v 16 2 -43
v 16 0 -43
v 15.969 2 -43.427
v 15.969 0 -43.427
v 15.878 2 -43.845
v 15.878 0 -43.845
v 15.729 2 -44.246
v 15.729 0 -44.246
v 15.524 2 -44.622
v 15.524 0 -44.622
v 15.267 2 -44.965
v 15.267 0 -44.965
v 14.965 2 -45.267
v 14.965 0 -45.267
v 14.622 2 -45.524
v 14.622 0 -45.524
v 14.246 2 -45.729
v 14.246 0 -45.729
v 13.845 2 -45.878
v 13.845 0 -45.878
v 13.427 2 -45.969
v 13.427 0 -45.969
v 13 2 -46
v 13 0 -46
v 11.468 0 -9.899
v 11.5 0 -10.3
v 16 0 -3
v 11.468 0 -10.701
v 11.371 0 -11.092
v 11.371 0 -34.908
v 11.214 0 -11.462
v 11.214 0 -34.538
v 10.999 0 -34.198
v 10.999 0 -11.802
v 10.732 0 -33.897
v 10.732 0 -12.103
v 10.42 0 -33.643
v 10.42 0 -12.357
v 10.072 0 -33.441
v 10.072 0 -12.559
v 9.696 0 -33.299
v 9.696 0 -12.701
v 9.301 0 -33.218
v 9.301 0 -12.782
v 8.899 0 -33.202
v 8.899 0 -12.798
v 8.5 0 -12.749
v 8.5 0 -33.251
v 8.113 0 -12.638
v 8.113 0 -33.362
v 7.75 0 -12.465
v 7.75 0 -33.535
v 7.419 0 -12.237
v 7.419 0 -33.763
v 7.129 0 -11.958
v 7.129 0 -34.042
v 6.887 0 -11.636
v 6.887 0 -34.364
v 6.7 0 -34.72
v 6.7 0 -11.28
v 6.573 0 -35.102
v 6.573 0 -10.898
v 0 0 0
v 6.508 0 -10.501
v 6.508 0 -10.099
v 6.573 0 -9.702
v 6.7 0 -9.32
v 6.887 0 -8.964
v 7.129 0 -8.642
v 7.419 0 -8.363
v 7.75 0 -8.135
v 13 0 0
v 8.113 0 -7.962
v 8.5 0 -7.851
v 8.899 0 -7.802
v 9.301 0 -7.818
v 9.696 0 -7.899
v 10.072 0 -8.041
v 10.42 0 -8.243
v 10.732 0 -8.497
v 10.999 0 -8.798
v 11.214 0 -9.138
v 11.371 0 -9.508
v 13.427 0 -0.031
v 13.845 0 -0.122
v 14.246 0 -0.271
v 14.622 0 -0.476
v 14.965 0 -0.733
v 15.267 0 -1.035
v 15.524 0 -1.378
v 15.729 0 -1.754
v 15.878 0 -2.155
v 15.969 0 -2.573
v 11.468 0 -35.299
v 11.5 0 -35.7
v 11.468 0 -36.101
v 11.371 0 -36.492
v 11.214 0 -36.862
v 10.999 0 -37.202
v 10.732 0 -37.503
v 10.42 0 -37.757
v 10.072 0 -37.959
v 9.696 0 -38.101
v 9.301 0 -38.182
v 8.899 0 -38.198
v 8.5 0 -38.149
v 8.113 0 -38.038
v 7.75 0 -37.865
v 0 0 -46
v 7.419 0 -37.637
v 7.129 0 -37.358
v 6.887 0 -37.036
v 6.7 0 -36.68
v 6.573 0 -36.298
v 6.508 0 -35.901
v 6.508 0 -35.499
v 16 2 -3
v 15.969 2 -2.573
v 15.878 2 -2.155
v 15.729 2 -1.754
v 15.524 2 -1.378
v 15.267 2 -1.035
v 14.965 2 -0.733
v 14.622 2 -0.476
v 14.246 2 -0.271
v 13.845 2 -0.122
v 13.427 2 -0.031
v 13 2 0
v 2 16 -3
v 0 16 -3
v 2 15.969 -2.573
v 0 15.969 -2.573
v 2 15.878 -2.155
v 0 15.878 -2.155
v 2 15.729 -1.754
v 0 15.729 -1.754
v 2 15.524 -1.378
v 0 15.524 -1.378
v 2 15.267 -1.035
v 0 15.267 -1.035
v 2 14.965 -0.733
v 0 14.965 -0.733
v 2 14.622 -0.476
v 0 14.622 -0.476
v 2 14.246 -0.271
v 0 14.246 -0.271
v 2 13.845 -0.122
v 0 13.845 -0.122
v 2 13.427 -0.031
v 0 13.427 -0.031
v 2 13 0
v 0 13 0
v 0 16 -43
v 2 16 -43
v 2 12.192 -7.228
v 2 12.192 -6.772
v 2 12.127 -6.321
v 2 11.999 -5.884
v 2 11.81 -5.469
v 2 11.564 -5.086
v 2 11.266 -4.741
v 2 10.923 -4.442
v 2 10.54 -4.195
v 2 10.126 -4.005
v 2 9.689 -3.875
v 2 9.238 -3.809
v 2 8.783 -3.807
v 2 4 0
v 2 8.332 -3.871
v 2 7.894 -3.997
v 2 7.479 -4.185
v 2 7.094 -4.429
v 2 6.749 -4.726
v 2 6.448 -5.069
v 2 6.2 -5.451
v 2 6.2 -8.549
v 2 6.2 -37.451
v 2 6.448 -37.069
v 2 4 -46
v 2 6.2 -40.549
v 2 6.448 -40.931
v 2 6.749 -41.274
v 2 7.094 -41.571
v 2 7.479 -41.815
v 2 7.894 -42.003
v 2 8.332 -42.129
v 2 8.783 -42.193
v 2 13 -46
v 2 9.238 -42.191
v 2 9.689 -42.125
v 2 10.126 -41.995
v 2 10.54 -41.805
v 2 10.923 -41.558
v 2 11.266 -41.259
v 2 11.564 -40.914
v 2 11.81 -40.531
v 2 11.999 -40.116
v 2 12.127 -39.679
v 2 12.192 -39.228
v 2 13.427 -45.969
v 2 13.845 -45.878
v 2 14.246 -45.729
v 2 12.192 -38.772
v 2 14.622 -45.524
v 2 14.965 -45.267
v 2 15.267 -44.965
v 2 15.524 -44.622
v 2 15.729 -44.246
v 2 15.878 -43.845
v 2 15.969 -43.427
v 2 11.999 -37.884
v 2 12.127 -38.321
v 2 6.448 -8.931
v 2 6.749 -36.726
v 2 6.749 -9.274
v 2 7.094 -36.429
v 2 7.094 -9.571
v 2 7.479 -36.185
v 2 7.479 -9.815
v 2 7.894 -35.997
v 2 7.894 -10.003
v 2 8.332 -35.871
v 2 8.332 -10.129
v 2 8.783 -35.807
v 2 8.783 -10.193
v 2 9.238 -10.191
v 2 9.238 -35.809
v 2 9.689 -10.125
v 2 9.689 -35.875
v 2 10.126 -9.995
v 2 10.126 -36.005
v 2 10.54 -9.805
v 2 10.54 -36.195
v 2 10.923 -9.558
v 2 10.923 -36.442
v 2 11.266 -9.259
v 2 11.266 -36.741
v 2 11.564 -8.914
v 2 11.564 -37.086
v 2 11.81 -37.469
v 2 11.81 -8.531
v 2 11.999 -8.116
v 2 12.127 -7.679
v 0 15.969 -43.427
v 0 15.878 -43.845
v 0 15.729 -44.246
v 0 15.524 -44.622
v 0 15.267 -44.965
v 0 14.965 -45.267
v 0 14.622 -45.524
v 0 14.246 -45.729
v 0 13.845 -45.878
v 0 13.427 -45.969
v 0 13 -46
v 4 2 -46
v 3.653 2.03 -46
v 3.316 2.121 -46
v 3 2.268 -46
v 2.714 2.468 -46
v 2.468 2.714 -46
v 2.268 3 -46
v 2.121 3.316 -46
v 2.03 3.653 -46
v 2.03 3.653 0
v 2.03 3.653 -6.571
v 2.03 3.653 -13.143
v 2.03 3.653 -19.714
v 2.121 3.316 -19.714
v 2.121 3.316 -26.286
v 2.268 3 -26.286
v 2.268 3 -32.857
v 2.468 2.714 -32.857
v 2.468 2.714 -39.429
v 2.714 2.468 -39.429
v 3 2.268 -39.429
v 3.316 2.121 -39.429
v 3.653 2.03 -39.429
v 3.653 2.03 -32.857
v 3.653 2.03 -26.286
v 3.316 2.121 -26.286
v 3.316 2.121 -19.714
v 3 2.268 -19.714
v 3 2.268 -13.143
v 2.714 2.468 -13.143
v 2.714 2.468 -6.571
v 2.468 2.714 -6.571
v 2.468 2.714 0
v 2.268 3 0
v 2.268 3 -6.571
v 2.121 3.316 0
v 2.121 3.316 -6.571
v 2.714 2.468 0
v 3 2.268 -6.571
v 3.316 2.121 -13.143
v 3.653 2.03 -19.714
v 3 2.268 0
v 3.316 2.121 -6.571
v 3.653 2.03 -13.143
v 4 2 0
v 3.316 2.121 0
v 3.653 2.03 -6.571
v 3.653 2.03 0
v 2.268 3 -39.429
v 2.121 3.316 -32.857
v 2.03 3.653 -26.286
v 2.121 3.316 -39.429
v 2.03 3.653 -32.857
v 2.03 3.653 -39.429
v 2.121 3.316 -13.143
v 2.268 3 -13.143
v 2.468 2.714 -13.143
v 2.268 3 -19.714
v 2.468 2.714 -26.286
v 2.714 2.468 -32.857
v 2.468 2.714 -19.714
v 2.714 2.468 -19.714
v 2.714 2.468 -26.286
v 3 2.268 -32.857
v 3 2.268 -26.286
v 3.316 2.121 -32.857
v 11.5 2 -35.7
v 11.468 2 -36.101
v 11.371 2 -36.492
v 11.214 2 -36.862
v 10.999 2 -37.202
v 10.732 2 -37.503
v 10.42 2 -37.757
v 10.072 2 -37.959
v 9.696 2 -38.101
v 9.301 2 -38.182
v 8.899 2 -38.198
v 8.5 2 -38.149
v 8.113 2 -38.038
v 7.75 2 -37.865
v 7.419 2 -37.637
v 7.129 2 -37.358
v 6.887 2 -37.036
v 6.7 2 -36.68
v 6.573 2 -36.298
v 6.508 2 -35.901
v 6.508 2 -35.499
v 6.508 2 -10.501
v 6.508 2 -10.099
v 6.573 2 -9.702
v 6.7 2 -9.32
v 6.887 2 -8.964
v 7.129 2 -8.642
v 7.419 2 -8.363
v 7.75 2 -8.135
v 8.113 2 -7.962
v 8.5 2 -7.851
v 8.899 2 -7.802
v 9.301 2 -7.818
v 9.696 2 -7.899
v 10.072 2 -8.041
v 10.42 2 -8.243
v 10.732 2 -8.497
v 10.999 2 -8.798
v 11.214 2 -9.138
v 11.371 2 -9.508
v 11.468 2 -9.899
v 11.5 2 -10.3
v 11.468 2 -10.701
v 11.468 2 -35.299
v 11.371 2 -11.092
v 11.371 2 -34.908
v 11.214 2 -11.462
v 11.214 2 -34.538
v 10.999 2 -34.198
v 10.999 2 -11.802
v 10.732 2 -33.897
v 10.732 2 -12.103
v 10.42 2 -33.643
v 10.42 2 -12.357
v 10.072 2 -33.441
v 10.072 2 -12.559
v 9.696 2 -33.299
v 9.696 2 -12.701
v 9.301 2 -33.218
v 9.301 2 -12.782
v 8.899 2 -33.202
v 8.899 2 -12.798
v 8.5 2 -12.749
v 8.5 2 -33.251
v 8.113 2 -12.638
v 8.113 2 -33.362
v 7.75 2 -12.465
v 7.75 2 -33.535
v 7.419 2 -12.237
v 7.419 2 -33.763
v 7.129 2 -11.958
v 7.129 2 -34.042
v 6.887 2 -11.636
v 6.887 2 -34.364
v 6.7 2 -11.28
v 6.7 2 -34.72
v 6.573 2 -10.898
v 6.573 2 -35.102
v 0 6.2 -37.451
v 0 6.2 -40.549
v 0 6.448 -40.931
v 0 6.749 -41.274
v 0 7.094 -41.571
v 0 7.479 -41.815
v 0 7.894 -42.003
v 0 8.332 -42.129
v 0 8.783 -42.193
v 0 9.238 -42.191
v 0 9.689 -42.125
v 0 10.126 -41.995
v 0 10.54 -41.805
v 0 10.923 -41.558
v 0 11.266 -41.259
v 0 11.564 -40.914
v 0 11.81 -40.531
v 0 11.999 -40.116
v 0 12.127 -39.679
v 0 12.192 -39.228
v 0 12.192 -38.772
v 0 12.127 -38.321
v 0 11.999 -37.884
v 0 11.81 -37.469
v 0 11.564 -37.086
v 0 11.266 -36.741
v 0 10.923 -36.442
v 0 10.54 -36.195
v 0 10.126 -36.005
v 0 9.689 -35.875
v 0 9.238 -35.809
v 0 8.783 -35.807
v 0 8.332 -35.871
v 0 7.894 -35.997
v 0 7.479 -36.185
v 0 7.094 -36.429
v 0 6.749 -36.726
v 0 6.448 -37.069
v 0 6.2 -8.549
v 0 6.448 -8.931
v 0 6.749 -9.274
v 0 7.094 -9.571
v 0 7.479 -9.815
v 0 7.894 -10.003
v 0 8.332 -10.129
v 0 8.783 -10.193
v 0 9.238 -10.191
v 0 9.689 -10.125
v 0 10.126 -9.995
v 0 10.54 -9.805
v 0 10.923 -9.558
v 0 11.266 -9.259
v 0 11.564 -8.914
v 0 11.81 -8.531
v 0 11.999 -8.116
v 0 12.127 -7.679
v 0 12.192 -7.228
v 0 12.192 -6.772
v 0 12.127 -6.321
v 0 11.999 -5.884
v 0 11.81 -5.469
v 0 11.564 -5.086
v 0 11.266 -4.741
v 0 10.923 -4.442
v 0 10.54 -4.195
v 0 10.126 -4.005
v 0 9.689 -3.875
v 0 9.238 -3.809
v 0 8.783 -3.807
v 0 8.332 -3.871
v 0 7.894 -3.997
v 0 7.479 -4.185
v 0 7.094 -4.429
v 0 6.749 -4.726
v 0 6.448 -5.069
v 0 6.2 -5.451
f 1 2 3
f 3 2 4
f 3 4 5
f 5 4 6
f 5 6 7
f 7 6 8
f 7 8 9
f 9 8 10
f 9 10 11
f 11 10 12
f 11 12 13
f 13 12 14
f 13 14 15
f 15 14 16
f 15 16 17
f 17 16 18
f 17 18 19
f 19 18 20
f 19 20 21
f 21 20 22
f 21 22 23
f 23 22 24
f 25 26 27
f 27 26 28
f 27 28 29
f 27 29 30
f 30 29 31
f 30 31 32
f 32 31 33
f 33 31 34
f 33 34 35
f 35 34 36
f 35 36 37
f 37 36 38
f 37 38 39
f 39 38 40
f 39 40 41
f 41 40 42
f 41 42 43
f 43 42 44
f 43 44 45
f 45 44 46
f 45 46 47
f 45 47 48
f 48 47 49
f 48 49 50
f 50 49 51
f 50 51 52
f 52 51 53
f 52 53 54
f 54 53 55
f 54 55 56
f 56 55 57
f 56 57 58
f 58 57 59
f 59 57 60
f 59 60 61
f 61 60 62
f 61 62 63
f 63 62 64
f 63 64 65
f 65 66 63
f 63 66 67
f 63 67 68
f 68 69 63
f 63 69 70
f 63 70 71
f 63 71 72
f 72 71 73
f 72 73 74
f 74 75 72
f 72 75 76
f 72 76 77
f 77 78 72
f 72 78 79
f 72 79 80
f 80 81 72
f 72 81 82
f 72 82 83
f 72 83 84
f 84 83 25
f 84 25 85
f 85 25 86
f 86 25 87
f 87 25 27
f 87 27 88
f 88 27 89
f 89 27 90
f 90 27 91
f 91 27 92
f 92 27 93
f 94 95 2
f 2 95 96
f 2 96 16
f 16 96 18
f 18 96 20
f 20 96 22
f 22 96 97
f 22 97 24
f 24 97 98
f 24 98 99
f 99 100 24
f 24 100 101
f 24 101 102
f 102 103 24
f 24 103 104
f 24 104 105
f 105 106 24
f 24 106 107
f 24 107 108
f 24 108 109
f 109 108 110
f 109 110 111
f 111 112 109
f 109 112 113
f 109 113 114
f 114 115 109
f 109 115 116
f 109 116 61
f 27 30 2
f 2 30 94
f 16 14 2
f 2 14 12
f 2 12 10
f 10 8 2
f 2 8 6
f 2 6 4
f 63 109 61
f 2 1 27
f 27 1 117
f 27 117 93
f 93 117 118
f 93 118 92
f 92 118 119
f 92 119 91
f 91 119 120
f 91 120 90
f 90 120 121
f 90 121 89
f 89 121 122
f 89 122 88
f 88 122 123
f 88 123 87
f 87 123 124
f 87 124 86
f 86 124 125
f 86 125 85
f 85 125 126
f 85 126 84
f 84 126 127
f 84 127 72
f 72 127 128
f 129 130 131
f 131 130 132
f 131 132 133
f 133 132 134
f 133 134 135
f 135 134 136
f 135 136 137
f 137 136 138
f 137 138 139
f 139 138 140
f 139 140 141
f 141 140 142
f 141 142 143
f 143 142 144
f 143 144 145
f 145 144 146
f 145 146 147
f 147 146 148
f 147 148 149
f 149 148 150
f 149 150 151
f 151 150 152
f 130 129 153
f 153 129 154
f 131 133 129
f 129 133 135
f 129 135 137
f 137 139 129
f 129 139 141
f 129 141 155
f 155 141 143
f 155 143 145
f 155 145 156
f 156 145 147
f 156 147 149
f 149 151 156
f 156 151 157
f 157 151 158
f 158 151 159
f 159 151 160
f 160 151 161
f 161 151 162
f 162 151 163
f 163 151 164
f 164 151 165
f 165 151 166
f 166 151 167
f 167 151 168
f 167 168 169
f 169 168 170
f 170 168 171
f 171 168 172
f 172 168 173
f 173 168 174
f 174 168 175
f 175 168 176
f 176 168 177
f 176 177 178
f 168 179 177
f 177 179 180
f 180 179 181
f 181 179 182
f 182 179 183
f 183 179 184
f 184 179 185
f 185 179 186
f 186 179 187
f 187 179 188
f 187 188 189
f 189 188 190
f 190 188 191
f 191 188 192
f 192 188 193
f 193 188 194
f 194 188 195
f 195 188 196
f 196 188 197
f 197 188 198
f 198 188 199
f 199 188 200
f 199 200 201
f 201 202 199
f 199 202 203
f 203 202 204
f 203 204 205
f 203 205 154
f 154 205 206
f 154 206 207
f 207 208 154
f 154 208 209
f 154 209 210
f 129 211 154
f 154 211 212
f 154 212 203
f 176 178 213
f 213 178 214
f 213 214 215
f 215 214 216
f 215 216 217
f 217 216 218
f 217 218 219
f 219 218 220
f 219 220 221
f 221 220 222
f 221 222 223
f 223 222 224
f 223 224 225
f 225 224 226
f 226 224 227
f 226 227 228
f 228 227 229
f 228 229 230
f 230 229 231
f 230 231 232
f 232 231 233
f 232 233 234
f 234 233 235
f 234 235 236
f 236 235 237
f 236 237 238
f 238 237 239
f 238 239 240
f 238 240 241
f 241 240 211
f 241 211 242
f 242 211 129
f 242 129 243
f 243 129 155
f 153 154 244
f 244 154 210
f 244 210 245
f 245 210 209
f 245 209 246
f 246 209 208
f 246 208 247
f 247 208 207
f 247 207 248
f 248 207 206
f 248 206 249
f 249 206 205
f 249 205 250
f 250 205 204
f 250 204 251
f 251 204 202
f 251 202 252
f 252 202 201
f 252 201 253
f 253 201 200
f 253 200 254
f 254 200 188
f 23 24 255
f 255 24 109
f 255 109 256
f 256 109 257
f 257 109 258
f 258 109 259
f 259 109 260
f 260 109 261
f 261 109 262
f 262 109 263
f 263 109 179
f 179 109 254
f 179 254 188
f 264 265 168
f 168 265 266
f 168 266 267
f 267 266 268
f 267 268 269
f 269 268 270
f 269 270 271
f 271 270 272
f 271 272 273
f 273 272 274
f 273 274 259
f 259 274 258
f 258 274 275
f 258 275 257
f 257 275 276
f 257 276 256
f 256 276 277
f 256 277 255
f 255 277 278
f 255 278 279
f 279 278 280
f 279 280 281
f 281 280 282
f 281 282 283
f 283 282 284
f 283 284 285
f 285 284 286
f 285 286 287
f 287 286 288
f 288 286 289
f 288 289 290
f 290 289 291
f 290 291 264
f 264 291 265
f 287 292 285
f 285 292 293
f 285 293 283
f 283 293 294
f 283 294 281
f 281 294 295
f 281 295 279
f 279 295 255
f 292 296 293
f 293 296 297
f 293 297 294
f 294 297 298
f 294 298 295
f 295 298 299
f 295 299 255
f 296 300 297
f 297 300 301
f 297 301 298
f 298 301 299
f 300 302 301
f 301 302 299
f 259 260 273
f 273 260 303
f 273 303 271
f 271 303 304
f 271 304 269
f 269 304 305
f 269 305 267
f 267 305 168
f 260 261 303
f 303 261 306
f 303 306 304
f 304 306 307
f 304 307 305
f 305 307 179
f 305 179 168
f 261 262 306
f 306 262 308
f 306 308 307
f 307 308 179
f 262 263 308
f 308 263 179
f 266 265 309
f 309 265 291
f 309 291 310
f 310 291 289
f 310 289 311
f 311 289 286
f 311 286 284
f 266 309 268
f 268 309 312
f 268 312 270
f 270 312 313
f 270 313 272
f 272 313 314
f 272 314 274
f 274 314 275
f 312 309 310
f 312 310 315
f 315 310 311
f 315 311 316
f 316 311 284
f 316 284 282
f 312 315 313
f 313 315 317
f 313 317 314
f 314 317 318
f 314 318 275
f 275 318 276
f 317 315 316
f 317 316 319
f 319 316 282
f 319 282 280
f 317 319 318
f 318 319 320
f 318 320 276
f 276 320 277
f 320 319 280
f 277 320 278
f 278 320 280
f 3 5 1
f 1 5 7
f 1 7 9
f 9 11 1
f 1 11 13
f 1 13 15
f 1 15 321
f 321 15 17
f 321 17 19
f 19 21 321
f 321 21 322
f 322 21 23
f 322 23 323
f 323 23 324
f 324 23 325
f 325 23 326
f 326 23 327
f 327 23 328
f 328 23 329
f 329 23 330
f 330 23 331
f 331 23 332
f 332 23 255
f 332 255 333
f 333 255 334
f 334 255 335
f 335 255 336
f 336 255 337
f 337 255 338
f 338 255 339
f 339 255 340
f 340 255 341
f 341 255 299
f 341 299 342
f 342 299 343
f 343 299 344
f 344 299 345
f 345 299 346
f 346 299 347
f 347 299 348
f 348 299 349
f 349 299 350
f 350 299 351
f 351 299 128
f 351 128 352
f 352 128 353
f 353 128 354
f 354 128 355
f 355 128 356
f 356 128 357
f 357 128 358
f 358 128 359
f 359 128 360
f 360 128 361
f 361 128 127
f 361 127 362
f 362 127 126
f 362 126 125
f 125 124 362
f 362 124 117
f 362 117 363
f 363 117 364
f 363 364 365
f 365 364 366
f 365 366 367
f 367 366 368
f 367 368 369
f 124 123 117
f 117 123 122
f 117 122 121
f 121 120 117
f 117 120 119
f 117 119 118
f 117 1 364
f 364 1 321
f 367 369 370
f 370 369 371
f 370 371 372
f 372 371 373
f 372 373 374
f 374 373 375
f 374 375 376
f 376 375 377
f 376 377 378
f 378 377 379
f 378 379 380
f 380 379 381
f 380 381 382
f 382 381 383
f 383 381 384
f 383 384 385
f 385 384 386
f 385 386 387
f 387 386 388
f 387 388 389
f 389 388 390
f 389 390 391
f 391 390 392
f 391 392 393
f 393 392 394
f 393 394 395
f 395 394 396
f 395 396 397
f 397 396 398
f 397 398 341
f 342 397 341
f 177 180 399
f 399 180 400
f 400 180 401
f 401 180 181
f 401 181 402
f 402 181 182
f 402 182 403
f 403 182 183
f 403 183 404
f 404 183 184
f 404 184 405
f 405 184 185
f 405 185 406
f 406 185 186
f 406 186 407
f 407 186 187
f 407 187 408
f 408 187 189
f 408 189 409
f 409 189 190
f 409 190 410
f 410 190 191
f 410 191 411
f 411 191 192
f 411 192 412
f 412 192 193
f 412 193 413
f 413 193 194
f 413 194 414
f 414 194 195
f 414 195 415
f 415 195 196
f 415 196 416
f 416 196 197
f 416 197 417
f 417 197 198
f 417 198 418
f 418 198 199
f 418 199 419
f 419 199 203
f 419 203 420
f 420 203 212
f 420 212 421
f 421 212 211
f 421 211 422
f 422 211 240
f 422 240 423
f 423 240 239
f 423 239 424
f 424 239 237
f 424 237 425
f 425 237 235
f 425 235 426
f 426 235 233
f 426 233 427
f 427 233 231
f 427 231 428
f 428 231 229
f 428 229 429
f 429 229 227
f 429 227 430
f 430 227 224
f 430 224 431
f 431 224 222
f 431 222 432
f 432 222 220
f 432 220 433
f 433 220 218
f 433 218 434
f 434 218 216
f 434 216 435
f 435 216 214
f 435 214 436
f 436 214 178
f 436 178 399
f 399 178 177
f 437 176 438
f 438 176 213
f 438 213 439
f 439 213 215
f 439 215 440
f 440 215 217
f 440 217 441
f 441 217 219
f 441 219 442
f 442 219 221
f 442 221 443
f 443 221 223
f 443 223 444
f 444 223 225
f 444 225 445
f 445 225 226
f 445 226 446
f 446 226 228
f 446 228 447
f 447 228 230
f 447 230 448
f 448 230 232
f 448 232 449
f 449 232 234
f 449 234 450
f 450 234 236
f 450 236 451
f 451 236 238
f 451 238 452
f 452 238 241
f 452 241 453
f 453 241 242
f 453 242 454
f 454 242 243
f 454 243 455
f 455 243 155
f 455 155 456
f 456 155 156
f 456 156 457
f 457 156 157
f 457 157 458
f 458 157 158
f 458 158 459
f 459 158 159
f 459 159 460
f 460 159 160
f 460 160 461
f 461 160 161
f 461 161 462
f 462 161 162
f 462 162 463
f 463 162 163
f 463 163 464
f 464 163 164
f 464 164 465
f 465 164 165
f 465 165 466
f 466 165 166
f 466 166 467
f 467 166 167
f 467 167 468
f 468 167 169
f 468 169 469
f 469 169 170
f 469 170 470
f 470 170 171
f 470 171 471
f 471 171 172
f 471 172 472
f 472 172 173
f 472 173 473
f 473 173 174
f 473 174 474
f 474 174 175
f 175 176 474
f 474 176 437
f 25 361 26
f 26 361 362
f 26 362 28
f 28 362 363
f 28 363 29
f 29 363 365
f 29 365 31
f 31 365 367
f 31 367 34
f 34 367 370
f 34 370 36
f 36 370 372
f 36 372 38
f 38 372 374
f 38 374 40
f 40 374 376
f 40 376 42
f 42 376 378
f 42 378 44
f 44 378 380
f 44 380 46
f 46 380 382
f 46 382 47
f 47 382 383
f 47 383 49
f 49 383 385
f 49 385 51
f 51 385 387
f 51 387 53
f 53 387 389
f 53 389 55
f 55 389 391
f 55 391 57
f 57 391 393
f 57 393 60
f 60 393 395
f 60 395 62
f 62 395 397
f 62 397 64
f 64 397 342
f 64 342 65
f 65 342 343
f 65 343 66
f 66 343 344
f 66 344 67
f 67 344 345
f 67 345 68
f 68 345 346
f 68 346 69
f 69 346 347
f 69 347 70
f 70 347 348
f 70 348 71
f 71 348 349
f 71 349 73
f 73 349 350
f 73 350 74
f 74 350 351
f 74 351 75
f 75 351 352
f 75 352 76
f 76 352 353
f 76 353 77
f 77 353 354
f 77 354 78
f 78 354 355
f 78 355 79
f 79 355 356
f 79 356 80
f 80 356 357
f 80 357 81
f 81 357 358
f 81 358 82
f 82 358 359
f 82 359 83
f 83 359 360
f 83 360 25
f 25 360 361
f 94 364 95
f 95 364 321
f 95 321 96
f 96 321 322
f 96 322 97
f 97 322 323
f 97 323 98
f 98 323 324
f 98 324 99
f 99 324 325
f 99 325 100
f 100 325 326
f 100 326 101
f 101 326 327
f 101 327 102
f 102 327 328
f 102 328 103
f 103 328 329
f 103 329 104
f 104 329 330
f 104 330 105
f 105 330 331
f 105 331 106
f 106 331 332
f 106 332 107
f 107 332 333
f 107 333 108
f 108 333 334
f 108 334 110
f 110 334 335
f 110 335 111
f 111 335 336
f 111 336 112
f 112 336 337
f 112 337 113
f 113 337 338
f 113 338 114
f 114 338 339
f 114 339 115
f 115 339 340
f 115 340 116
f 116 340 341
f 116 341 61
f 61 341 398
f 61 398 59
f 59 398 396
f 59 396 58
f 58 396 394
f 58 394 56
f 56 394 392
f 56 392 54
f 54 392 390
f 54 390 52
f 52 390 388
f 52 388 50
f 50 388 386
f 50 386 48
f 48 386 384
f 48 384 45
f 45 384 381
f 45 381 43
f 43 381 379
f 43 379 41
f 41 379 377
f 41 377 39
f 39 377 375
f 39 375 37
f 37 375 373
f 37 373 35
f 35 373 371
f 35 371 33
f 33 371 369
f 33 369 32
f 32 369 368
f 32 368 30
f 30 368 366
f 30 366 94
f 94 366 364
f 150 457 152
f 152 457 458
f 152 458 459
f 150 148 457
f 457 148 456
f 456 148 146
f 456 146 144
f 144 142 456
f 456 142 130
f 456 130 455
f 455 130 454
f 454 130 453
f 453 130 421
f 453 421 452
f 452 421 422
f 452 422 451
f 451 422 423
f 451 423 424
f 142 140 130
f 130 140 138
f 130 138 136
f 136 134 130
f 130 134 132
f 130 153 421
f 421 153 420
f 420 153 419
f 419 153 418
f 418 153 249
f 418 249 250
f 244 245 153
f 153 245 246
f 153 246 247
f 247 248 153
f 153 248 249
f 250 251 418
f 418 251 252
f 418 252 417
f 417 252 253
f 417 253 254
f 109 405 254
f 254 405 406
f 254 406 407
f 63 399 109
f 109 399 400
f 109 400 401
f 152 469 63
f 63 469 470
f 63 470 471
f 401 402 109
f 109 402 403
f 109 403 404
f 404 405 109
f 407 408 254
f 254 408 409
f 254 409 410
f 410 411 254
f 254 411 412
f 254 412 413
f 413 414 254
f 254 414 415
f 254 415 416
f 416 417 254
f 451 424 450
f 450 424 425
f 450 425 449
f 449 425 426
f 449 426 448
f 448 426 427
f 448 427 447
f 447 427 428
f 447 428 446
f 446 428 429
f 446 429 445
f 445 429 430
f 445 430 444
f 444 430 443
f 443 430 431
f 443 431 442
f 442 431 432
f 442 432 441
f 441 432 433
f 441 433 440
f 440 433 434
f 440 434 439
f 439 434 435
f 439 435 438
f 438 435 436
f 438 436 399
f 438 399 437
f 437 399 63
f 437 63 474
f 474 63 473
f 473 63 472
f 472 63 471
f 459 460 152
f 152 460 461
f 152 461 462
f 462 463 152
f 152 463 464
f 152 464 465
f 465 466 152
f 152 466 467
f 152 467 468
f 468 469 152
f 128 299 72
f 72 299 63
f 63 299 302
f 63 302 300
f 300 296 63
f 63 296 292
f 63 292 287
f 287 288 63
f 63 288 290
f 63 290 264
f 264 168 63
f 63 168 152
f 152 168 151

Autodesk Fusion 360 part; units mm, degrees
sketch "Sketch1" plane through (0, 0, 0) normal (0, 0, 1) x (1, 0, 0)
  line L0 (0, 0) -> (16, 0)
  line L1 (16, 0) -> (16, 2)
  line L2 (16, 2) -> (2, 2)
  line L3 (2, 2) -> (2, 16)
  line L4 (2, 16) -> (0, 16)
  line L5 (0, 16) -> (0, 0)
  dimension "d1" = 16
  dimension "d2" = 16
  dimension "d3" = 2
  dimension "d4" = 2
extrude "Extrude1" add sketch "Sketch1" against normal blind 46
sketch "Sketch2" plane through (0, 2, 0) normal (0, 1, 0) x (-1, 0, 0)
  line L0 (-2, 0) -> (-16, 0)
  line L1 (-16, 0) -> (-16, -46)
  line L2 (-16, -46) -> (-2, -46)
  line L3 (-2, -46) -> (-2, 0)
  line L4 (-9, -46) -> (-9, 0) construction
  line L5 (-16, -23) -> (-2, -23) construction
  circle A0 centre (-9, -10.3) radius 2.5
  circle A1 centre (-9, -35.7) radius 2.5
  dimension "d7" = 5
  dimension "d19" = 12.7
extrude "Extrude2" cut sketch "Sketch2" against normal blind 2 contours A0 | A1
sketch "Sketch3" plane through (2, 0, 0) normal (1, 0, 0) x (0, 0, -1)
  line L0 (0, 16) -> (0, 2)
  line L1 (0, 2) -> (46, 2)
  line L2 (46, 2) -> (46, 16)
  line L3 (46, 16) -> (0, 16)
  line L4 (23, 16) -> (23, 2) construction
  line L5 (0, 9) -> (46, 9) construction
  circle A0 centre (7, 9) radius 3.2
  line L6 (0, 12.2) -> (46, 12.2) construction
  line L7 (0, 6.2) -> (46, 6.2) construction
  line L8 (5.4508, 6.2) -> (8.5492, 6.2)
  circle A1 centre (39, 9) radius 3.2
  line L9 (40.5492, 6.2) -> (37.4508, 6.2)
  dimension "d10" = 6.4
  dimension "d11" = 6
  dimension "d12" = 16
extrude "Extrude3" cut sketch "Sketch3" against normal blind 2 contours A0 L8 | A1 L9 picked at (6.9734, 8.1997) picked at (38.4662, 7.5792)
fillet "Fillet1" radius 2 1 edges at (2, 2, -23)
fillet "Fillet2" radius 3 4 edges at (1, 16, -46) (1, 16, 0) (16, 1, 0) (16, 1, -46)
equation "d12 = ( 32 / 2 ) * 1 mm"
equation "d19 = ( 25.4 / 2 ) * 1 mm"
